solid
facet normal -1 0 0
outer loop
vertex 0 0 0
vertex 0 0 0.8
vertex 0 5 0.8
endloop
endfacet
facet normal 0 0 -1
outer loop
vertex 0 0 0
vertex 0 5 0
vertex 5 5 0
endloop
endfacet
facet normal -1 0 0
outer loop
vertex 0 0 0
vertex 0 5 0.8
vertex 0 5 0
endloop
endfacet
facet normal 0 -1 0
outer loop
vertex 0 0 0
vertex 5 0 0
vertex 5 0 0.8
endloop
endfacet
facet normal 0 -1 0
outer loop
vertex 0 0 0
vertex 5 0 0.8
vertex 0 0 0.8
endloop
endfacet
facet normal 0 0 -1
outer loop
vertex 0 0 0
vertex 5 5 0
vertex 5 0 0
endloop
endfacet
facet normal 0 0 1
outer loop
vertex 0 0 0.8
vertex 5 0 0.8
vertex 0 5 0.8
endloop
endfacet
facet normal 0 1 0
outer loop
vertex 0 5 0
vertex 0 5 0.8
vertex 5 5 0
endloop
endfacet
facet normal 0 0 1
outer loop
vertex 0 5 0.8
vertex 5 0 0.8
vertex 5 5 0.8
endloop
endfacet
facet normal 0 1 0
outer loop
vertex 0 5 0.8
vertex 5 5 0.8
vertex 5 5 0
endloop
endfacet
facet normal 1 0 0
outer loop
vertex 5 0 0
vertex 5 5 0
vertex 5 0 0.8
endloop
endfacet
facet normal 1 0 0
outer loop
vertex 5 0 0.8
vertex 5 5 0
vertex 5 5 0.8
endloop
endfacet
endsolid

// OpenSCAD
/* Warning, this is a very basic generator with a lot of approximation 
input data : [WFBGA, 5WX, 5x5x0.8mm, 60, , A, C04-00409A]
generated by com.zoubworld.electronics.cad.model3d.Basic
Date : Sun Feb 15 10:50:48 CET 2026
*/

//body
color("black")
translate([0,0,0])
cube([5.0,5.0,0.8], center=false);
